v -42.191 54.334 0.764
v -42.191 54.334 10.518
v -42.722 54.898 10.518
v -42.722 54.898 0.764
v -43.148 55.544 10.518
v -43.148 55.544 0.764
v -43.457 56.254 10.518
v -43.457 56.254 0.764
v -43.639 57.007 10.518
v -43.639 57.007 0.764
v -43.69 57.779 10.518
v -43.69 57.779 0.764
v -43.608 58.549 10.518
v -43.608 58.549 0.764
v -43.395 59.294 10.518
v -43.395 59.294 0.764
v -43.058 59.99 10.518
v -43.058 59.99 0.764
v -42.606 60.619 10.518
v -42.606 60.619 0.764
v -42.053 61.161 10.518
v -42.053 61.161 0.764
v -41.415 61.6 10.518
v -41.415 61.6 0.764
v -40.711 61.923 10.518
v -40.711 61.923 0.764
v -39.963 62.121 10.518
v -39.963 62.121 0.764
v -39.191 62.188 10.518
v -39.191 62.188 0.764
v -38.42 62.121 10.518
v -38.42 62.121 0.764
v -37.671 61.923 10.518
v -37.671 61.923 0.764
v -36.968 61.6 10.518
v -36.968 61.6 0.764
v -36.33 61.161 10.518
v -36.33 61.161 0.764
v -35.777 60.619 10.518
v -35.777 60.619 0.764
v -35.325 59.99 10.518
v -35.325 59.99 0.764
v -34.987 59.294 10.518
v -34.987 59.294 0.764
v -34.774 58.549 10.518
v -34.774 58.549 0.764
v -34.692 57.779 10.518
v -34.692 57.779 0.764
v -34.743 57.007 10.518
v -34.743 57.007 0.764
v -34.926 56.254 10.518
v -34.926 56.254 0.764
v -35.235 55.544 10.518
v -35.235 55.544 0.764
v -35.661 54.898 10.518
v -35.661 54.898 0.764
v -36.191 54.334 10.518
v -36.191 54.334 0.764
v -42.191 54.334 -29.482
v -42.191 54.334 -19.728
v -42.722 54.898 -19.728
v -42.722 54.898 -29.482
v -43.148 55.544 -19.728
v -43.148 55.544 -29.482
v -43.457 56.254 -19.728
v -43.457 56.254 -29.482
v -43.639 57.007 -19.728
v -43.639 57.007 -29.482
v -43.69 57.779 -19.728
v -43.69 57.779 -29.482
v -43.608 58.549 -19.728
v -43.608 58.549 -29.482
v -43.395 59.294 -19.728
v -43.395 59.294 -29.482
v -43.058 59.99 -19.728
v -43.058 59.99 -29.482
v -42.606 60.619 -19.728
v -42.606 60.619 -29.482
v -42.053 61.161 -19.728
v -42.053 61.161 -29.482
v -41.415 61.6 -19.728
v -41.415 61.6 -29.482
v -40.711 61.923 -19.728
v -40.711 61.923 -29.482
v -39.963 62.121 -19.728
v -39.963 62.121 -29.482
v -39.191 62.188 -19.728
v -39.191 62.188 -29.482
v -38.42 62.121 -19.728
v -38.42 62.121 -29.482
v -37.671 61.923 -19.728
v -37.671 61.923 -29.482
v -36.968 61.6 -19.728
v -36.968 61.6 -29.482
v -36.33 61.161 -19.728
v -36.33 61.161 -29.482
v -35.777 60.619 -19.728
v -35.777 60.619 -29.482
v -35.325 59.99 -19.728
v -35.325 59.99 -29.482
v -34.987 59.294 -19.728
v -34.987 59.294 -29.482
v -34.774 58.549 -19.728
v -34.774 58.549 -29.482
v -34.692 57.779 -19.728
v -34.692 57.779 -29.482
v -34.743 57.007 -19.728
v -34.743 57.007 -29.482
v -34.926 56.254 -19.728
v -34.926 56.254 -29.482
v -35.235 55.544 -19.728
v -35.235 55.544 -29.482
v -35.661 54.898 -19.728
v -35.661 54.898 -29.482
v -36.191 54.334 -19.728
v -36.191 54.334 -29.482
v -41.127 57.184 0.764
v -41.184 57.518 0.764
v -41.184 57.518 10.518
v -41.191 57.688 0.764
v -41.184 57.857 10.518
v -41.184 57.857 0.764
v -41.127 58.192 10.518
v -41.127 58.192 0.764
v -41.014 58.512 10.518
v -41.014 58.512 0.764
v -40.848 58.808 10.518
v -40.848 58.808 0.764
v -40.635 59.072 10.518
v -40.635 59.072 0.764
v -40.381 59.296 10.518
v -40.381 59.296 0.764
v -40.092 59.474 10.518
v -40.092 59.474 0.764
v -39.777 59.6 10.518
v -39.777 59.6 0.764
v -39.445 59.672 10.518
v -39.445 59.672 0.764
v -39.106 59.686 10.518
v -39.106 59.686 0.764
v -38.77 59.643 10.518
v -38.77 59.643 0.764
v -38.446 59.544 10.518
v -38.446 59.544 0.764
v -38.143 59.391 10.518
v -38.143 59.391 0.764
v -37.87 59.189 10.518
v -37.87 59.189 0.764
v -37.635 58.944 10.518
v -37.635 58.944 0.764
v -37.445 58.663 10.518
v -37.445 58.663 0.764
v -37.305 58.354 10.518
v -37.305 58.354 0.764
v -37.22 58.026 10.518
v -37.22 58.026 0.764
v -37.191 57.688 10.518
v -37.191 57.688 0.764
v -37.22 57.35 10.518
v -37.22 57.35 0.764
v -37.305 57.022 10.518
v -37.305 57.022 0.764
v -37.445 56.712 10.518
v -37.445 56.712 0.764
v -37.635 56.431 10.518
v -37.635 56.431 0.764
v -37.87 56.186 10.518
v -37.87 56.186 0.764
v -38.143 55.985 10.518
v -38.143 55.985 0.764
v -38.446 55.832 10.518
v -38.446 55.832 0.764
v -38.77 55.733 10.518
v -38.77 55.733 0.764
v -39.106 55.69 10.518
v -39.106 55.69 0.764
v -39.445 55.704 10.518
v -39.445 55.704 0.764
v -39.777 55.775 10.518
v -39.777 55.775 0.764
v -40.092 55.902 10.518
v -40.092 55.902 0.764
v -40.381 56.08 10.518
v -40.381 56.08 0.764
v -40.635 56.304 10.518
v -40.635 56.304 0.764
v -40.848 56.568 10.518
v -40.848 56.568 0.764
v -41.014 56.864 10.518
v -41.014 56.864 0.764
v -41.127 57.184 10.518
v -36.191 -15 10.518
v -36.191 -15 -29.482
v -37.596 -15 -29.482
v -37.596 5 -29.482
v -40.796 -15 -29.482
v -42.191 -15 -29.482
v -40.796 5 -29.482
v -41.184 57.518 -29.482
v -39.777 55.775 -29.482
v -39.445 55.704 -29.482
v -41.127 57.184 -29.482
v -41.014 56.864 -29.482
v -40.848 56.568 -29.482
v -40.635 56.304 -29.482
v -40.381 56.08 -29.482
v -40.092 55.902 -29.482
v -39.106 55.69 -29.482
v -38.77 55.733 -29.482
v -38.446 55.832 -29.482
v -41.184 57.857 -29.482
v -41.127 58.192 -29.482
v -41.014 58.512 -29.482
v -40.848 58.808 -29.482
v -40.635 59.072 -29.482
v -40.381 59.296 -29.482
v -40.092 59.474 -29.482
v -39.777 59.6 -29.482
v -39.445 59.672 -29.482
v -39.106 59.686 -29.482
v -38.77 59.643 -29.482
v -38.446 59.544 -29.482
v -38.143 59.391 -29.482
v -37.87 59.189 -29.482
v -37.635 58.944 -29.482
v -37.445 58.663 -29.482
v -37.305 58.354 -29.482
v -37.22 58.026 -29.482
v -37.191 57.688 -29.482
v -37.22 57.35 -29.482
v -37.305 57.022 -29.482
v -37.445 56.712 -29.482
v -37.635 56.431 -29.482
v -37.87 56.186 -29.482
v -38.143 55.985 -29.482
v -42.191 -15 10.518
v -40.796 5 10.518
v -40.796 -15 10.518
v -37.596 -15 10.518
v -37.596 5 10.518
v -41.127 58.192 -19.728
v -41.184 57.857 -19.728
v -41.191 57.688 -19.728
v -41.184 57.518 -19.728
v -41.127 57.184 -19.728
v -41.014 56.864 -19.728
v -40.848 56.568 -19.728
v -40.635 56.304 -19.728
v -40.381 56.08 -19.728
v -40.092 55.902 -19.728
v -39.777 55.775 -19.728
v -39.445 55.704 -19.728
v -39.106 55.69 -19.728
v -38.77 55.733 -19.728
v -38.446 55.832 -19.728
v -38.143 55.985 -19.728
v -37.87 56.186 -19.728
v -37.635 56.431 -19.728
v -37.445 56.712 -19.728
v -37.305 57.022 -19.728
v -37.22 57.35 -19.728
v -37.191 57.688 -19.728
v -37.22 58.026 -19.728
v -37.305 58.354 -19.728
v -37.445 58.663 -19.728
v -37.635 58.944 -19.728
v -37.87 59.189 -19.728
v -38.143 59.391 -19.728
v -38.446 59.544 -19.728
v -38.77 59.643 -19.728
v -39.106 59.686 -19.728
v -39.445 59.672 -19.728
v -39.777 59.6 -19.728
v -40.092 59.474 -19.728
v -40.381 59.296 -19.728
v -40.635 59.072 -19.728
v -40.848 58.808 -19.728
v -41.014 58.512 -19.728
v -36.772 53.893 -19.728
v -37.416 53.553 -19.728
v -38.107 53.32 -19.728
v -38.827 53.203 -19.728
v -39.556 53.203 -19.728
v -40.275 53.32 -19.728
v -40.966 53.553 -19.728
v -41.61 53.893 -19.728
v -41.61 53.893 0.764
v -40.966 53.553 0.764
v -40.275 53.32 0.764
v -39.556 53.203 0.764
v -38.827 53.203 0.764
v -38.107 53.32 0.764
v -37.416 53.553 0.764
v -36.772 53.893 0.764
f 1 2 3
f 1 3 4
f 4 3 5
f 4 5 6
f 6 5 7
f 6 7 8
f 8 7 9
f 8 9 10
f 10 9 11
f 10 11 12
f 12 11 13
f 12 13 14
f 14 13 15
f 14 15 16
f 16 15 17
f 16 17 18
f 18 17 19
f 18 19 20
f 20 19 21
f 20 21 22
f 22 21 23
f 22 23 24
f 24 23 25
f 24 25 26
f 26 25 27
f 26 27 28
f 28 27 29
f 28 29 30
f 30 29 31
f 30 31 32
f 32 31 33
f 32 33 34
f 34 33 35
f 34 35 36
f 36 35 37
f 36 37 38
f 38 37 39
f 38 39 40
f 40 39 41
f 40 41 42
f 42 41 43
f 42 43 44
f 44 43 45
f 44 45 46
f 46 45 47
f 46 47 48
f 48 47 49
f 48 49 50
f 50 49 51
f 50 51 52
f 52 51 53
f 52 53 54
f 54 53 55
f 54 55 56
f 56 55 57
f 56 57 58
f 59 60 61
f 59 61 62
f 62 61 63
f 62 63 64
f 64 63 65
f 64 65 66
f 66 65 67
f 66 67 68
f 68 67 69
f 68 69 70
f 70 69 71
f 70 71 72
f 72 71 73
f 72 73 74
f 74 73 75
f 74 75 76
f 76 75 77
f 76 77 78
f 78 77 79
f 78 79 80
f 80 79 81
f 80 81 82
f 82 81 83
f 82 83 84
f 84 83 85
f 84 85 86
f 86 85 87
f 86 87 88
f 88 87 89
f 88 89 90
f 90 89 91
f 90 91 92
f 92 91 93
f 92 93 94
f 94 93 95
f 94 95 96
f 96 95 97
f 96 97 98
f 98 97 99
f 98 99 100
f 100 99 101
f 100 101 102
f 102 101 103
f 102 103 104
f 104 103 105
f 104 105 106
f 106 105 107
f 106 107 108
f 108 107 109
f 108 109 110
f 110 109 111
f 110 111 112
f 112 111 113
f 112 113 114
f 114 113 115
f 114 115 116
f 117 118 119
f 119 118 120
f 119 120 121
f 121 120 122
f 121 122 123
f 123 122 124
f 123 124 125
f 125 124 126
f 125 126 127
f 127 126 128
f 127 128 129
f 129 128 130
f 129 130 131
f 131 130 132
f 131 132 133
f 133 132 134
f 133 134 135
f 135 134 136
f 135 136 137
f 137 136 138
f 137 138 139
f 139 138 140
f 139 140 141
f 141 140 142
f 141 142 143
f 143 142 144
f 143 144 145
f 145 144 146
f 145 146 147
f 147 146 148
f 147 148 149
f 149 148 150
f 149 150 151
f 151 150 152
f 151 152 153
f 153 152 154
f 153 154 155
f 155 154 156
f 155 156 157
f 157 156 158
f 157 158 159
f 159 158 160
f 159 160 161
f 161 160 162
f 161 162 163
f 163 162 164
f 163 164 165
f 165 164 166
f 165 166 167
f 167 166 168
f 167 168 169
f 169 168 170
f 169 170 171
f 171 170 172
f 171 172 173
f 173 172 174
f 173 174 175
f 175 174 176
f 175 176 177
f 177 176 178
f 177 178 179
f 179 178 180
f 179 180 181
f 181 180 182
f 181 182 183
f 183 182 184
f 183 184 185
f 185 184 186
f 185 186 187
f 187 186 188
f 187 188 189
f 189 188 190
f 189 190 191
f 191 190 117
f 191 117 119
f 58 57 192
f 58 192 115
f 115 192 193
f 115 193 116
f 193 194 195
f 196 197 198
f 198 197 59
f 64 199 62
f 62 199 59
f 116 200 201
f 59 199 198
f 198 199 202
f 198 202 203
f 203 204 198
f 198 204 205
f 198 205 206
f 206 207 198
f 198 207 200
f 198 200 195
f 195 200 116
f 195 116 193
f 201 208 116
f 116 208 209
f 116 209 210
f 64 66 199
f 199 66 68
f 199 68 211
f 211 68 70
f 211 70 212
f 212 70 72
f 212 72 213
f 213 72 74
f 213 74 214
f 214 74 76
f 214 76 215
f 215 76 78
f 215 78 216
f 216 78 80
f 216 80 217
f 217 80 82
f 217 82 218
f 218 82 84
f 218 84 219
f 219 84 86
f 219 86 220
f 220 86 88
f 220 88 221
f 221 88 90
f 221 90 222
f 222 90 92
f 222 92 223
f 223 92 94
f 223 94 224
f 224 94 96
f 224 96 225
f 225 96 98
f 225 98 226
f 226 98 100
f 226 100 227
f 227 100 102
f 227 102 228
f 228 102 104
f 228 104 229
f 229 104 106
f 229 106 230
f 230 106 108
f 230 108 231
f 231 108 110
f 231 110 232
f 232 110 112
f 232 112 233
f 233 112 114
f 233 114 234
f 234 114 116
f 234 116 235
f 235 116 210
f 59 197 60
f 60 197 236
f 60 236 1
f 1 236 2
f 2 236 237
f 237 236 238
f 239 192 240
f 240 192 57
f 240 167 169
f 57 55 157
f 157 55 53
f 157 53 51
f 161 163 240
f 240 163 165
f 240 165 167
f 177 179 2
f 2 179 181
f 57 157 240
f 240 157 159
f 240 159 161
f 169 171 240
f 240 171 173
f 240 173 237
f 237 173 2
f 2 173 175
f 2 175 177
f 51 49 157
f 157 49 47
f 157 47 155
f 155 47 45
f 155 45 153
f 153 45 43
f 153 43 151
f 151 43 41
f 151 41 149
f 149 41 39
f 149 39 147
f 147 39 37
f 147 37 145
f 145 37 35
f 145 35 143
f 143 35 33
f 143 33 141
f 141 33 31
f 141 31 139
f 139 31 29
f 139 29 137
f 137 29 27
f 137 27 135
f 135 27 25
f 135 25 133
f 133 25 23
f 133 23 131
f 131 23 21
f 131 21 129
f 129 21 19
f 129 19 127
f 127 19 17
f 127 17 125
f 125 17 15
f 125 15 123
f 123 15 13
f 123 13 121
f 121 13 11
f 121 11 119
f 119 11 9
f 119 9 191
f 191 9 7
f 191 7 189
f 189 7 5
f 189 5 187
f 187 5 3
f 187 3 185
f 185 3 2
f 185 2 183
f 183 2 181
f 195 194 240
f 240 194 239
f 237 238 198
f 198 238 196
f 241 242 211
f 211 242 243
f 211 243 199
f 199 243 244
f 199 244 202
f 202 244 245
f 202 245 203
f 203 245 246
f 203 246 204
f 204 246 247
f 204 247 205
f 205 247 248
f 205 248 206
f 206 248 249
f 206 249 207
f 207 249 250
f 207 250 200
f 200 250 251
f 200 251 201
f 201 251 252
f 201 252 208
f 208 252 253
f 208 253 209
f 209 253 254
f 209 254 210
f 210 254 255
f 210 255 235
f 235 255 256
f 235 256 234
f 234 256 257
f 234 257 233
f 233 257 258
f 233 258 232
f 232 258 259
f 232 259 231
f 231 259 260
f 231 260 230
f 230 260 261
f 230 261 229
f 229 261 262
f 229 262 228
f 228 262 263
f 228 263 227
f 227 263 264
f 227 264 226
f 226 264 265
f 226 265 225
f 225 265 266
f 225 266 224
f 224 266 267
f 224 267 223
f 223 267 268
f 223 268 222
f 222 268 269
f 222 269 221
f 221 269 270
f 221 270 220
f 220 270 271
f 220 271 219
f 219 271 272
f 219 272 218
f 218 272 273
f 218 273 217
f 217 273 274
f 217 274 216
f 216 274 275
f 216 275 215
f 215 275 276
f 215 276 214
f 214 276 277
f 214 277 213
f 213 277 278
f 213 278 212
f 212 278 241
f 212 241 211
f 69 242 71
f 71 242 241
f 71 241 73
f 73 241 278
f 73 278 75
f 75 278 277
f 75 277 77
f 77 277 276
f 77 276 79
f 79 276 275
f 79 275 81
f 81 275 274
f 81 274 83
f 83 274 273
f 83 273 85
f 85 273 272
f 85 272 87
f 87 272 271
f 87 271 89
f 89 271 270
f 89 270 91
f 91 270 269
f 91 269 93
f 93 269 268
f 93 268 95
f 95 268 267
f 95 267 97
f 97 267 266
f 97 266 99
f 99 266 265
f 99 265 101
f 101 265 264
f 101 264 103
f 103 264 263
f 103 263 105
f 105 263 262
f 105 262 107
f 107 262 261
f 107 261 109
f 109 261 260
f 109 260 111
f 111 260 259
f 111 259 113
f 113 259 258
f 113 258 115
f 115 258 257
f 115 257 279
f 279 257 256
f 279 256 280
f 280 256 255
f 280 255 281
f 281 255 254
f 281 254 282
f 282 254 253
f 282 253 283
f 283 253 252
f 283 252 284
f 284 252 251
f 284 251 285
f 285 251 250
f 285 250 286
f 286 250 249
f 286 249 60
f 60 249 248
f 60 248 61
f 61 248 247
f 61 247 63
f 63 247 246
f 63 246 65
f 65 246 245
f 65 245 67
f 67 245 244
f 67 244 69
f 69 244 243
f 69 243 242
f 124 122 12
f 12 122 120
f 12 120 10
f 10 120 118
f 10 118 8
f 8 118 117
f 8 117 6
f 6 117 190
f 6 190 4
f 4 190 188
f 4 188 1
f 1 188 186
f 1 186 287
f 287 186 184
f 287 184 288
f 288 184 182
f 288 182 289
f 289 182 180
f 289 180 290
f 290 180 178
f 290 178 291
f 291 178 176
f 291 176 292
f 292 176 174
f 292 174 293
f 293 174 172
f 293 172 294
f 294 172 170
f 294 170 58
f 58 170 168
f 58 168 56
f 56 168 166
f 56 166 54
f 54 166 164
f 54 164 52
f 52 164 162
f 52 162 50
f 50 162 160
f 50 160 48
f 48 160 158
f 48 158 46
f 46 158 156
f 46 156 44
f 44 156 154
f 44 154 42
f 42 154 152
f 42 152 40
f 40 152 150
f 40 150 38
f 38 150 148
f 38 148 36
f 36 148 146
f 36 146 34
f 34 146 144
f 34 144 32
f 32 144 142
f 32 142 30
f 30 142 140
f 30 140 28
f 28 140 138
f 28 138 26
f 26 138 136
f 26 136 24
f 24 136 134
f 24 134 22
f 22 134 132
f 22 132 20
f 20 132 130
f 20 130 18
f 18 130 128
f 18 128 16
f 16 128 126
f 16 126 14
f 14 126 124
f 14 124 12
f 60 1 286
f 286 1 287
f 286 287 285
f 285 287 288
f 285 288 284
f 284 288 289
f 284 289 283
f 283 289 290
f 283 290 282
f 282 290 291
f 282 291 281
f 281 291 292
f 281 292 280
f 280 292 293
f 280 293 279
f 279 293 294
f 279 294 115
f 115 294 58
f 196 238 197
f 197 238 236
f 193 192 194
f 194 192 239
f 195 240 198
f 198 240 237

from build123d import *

# Parameters (mm, degrees)
SKETCH1_W               = 6
SKETCH1_H               = 40
BOSS_EXTRUDE1_DEPTH     = 60
SKETCH2_W               = 3.2
SKETCH2_H               = 40
CUT_EXTRUDE2_DEPTH      = 20
SKETCH3_R               = 2
CUT_EXTRUDE3_DEPTH      = 1
CUT_EXTRUDE3_DEPTH_BACK = 41
SKETCH4_R               = 4.5
BOSS_EXTRUDE2_DEPTH     = 40
SKETCH6_R               = 2
CUT_EXTRUDE4_DEPTH      = 40
SKETCH7_W               = 20.491200394
SKETCH7_H               = 6.65
CUT_EXTRUDE5_DEPTH      = 2.5
CUT_EXTRUDE5_DEPTH_BACK = 8.5
SKETCH8_R               = 4.5
CUT_EXTRUDE6_DEPTH      = 20.4912
SKETCH9_W               = 1.395608407
SKETCH9_H               = 40
SKETCH9_W_2             = 1.404391593
BOSS_EXTRUDE3_DEPTH     = 15
SKETCH10_W              = 3.2
SKETCH10_H              = 40
BOSS_EXTRUDE4_DEPTH     = 15


with BuildPart() as part:
    # Sketch1 → Boss-Extrude1 (new body)
    with BuildSketch(Plane(origin=(0, 0, 0), x_dir=(1, 0, 0), z_dir=(0, 1, 0))):
        with Locations((-39.19123506, 9.482071713)):
            Rectangle(SKETCH1_W, SKETCH1_H)
    extrude(amount=BOSS_EXTRUDE1_DEPTH)

    # Sketch2 → Cut-Extrude2 (cut)
    with BuildSketch(Plane.XZ):
        with Locations((-39.195626653, -9.482071713)):
            Rectangle(SKETCH2_W, SKETCH2_H)
    extrude(amount=-CUT_EXTRUDE2_DEPTH, mode=Mode.SUBTRACT)

    # Sketch3 → Cut-Extrude3 (cut, two sides)
    with BuildSketch(Plane.XY.offset(10.517928287)) as cut_extrude3_sk:
        with Locations((-39.19123506, 57.687817086)):
            Circle(SKETCH3_R)
    extrude(amount=CUT_EXTRUDE3_DEPTH, mode=Mode.SUBTRACT)
    extrude(cut_extrude3_sk.sketch, amount=-CUT_EXTRUDE3_DEPTH_BACK, mode=Mode.SUBTRACT)

    # Sketch4 → Boss-Extrude2 (add)
    with BuildSketch(Plane.XY.offset(10.517928287)):
        with Locations((-39.19123506, 57.687817086)):
            Circle(SKETCH4_R)
    extrude(amount=-BOSS_EXTRUDE2_DEPTH)

    # Sketch6 → Cut-Extrude4 (cut)
    with BuildSketch(Plane.XY.offset(10.517928287)):
        with Locations((-39.19123506, 57.687817086)):
            Circle(SKETCH6_R)
    extrude(amount=-CUT_EXTRUDE4_DEPTH, mode=Mode.SUBTRACT)

    # Sketch7 → Cut-Extrude5 (cut, two sides)
    with BuildSketch(Plane(origin=(-36.19123506, 0, 0), x_dir=(0, 0, -1), z_dir=(1, 0, 0))) as cut_extrude5_sk:
        with Locations((9.482071713, 58.362817086)):
            Rectangle(SKETCH7_W, SKETCH7_H)
    extrude(amount=CUT_EXTRUDE5_DEPTH, mode=Mode.SUBTRACT)
    extrude(cut_extrude5_sk.sketch, amount=-CUT_EXTRUDE5_DEPTH_BACK, mode=Mode.SUBTRACT)

    # Sketch8 → Cut-Extrude6 (cut)
    with BuildSketch(Plane(origin=(0, 0, 0.763528484), x_dir=(-1, 0, 0), z_dir=(0, 0, -1))):
        with Locations((39.19123506, 57.687817086)):
            Circle(SKETCH8_R)
    extrude(amount=CUT_EXTRUDE6_DEPTH, mode=Mode.SUBTRACT)

    # Sketch9 → Boss-Extrude3 (add)
    with BuildSketch(Plane.XZ):
        with Locations((-41.493430856, -9.482071713)):
            Rectangle(SKETCH9_W, SKETCH9_H)
        with Locations((-36.893430857, -9.482071713)):
            Rectangle(SKETCH9_W_2, SKETCH9_H)
    extrude(amount=BOSS_EXTRUDE3_DEPTH)

    # Sketch10 → Boss-Extrude4 (add)
    with BuildSketch(Plane.XZ.offset(-20)):
        with Locations((-39.195626653, -9.482071713)):
            Rectangle(SKETCH10_W, SKETCH10_H)
    extrude(amount=BOSS_EXTRUDE4_DEPTH)


solid = part.part
